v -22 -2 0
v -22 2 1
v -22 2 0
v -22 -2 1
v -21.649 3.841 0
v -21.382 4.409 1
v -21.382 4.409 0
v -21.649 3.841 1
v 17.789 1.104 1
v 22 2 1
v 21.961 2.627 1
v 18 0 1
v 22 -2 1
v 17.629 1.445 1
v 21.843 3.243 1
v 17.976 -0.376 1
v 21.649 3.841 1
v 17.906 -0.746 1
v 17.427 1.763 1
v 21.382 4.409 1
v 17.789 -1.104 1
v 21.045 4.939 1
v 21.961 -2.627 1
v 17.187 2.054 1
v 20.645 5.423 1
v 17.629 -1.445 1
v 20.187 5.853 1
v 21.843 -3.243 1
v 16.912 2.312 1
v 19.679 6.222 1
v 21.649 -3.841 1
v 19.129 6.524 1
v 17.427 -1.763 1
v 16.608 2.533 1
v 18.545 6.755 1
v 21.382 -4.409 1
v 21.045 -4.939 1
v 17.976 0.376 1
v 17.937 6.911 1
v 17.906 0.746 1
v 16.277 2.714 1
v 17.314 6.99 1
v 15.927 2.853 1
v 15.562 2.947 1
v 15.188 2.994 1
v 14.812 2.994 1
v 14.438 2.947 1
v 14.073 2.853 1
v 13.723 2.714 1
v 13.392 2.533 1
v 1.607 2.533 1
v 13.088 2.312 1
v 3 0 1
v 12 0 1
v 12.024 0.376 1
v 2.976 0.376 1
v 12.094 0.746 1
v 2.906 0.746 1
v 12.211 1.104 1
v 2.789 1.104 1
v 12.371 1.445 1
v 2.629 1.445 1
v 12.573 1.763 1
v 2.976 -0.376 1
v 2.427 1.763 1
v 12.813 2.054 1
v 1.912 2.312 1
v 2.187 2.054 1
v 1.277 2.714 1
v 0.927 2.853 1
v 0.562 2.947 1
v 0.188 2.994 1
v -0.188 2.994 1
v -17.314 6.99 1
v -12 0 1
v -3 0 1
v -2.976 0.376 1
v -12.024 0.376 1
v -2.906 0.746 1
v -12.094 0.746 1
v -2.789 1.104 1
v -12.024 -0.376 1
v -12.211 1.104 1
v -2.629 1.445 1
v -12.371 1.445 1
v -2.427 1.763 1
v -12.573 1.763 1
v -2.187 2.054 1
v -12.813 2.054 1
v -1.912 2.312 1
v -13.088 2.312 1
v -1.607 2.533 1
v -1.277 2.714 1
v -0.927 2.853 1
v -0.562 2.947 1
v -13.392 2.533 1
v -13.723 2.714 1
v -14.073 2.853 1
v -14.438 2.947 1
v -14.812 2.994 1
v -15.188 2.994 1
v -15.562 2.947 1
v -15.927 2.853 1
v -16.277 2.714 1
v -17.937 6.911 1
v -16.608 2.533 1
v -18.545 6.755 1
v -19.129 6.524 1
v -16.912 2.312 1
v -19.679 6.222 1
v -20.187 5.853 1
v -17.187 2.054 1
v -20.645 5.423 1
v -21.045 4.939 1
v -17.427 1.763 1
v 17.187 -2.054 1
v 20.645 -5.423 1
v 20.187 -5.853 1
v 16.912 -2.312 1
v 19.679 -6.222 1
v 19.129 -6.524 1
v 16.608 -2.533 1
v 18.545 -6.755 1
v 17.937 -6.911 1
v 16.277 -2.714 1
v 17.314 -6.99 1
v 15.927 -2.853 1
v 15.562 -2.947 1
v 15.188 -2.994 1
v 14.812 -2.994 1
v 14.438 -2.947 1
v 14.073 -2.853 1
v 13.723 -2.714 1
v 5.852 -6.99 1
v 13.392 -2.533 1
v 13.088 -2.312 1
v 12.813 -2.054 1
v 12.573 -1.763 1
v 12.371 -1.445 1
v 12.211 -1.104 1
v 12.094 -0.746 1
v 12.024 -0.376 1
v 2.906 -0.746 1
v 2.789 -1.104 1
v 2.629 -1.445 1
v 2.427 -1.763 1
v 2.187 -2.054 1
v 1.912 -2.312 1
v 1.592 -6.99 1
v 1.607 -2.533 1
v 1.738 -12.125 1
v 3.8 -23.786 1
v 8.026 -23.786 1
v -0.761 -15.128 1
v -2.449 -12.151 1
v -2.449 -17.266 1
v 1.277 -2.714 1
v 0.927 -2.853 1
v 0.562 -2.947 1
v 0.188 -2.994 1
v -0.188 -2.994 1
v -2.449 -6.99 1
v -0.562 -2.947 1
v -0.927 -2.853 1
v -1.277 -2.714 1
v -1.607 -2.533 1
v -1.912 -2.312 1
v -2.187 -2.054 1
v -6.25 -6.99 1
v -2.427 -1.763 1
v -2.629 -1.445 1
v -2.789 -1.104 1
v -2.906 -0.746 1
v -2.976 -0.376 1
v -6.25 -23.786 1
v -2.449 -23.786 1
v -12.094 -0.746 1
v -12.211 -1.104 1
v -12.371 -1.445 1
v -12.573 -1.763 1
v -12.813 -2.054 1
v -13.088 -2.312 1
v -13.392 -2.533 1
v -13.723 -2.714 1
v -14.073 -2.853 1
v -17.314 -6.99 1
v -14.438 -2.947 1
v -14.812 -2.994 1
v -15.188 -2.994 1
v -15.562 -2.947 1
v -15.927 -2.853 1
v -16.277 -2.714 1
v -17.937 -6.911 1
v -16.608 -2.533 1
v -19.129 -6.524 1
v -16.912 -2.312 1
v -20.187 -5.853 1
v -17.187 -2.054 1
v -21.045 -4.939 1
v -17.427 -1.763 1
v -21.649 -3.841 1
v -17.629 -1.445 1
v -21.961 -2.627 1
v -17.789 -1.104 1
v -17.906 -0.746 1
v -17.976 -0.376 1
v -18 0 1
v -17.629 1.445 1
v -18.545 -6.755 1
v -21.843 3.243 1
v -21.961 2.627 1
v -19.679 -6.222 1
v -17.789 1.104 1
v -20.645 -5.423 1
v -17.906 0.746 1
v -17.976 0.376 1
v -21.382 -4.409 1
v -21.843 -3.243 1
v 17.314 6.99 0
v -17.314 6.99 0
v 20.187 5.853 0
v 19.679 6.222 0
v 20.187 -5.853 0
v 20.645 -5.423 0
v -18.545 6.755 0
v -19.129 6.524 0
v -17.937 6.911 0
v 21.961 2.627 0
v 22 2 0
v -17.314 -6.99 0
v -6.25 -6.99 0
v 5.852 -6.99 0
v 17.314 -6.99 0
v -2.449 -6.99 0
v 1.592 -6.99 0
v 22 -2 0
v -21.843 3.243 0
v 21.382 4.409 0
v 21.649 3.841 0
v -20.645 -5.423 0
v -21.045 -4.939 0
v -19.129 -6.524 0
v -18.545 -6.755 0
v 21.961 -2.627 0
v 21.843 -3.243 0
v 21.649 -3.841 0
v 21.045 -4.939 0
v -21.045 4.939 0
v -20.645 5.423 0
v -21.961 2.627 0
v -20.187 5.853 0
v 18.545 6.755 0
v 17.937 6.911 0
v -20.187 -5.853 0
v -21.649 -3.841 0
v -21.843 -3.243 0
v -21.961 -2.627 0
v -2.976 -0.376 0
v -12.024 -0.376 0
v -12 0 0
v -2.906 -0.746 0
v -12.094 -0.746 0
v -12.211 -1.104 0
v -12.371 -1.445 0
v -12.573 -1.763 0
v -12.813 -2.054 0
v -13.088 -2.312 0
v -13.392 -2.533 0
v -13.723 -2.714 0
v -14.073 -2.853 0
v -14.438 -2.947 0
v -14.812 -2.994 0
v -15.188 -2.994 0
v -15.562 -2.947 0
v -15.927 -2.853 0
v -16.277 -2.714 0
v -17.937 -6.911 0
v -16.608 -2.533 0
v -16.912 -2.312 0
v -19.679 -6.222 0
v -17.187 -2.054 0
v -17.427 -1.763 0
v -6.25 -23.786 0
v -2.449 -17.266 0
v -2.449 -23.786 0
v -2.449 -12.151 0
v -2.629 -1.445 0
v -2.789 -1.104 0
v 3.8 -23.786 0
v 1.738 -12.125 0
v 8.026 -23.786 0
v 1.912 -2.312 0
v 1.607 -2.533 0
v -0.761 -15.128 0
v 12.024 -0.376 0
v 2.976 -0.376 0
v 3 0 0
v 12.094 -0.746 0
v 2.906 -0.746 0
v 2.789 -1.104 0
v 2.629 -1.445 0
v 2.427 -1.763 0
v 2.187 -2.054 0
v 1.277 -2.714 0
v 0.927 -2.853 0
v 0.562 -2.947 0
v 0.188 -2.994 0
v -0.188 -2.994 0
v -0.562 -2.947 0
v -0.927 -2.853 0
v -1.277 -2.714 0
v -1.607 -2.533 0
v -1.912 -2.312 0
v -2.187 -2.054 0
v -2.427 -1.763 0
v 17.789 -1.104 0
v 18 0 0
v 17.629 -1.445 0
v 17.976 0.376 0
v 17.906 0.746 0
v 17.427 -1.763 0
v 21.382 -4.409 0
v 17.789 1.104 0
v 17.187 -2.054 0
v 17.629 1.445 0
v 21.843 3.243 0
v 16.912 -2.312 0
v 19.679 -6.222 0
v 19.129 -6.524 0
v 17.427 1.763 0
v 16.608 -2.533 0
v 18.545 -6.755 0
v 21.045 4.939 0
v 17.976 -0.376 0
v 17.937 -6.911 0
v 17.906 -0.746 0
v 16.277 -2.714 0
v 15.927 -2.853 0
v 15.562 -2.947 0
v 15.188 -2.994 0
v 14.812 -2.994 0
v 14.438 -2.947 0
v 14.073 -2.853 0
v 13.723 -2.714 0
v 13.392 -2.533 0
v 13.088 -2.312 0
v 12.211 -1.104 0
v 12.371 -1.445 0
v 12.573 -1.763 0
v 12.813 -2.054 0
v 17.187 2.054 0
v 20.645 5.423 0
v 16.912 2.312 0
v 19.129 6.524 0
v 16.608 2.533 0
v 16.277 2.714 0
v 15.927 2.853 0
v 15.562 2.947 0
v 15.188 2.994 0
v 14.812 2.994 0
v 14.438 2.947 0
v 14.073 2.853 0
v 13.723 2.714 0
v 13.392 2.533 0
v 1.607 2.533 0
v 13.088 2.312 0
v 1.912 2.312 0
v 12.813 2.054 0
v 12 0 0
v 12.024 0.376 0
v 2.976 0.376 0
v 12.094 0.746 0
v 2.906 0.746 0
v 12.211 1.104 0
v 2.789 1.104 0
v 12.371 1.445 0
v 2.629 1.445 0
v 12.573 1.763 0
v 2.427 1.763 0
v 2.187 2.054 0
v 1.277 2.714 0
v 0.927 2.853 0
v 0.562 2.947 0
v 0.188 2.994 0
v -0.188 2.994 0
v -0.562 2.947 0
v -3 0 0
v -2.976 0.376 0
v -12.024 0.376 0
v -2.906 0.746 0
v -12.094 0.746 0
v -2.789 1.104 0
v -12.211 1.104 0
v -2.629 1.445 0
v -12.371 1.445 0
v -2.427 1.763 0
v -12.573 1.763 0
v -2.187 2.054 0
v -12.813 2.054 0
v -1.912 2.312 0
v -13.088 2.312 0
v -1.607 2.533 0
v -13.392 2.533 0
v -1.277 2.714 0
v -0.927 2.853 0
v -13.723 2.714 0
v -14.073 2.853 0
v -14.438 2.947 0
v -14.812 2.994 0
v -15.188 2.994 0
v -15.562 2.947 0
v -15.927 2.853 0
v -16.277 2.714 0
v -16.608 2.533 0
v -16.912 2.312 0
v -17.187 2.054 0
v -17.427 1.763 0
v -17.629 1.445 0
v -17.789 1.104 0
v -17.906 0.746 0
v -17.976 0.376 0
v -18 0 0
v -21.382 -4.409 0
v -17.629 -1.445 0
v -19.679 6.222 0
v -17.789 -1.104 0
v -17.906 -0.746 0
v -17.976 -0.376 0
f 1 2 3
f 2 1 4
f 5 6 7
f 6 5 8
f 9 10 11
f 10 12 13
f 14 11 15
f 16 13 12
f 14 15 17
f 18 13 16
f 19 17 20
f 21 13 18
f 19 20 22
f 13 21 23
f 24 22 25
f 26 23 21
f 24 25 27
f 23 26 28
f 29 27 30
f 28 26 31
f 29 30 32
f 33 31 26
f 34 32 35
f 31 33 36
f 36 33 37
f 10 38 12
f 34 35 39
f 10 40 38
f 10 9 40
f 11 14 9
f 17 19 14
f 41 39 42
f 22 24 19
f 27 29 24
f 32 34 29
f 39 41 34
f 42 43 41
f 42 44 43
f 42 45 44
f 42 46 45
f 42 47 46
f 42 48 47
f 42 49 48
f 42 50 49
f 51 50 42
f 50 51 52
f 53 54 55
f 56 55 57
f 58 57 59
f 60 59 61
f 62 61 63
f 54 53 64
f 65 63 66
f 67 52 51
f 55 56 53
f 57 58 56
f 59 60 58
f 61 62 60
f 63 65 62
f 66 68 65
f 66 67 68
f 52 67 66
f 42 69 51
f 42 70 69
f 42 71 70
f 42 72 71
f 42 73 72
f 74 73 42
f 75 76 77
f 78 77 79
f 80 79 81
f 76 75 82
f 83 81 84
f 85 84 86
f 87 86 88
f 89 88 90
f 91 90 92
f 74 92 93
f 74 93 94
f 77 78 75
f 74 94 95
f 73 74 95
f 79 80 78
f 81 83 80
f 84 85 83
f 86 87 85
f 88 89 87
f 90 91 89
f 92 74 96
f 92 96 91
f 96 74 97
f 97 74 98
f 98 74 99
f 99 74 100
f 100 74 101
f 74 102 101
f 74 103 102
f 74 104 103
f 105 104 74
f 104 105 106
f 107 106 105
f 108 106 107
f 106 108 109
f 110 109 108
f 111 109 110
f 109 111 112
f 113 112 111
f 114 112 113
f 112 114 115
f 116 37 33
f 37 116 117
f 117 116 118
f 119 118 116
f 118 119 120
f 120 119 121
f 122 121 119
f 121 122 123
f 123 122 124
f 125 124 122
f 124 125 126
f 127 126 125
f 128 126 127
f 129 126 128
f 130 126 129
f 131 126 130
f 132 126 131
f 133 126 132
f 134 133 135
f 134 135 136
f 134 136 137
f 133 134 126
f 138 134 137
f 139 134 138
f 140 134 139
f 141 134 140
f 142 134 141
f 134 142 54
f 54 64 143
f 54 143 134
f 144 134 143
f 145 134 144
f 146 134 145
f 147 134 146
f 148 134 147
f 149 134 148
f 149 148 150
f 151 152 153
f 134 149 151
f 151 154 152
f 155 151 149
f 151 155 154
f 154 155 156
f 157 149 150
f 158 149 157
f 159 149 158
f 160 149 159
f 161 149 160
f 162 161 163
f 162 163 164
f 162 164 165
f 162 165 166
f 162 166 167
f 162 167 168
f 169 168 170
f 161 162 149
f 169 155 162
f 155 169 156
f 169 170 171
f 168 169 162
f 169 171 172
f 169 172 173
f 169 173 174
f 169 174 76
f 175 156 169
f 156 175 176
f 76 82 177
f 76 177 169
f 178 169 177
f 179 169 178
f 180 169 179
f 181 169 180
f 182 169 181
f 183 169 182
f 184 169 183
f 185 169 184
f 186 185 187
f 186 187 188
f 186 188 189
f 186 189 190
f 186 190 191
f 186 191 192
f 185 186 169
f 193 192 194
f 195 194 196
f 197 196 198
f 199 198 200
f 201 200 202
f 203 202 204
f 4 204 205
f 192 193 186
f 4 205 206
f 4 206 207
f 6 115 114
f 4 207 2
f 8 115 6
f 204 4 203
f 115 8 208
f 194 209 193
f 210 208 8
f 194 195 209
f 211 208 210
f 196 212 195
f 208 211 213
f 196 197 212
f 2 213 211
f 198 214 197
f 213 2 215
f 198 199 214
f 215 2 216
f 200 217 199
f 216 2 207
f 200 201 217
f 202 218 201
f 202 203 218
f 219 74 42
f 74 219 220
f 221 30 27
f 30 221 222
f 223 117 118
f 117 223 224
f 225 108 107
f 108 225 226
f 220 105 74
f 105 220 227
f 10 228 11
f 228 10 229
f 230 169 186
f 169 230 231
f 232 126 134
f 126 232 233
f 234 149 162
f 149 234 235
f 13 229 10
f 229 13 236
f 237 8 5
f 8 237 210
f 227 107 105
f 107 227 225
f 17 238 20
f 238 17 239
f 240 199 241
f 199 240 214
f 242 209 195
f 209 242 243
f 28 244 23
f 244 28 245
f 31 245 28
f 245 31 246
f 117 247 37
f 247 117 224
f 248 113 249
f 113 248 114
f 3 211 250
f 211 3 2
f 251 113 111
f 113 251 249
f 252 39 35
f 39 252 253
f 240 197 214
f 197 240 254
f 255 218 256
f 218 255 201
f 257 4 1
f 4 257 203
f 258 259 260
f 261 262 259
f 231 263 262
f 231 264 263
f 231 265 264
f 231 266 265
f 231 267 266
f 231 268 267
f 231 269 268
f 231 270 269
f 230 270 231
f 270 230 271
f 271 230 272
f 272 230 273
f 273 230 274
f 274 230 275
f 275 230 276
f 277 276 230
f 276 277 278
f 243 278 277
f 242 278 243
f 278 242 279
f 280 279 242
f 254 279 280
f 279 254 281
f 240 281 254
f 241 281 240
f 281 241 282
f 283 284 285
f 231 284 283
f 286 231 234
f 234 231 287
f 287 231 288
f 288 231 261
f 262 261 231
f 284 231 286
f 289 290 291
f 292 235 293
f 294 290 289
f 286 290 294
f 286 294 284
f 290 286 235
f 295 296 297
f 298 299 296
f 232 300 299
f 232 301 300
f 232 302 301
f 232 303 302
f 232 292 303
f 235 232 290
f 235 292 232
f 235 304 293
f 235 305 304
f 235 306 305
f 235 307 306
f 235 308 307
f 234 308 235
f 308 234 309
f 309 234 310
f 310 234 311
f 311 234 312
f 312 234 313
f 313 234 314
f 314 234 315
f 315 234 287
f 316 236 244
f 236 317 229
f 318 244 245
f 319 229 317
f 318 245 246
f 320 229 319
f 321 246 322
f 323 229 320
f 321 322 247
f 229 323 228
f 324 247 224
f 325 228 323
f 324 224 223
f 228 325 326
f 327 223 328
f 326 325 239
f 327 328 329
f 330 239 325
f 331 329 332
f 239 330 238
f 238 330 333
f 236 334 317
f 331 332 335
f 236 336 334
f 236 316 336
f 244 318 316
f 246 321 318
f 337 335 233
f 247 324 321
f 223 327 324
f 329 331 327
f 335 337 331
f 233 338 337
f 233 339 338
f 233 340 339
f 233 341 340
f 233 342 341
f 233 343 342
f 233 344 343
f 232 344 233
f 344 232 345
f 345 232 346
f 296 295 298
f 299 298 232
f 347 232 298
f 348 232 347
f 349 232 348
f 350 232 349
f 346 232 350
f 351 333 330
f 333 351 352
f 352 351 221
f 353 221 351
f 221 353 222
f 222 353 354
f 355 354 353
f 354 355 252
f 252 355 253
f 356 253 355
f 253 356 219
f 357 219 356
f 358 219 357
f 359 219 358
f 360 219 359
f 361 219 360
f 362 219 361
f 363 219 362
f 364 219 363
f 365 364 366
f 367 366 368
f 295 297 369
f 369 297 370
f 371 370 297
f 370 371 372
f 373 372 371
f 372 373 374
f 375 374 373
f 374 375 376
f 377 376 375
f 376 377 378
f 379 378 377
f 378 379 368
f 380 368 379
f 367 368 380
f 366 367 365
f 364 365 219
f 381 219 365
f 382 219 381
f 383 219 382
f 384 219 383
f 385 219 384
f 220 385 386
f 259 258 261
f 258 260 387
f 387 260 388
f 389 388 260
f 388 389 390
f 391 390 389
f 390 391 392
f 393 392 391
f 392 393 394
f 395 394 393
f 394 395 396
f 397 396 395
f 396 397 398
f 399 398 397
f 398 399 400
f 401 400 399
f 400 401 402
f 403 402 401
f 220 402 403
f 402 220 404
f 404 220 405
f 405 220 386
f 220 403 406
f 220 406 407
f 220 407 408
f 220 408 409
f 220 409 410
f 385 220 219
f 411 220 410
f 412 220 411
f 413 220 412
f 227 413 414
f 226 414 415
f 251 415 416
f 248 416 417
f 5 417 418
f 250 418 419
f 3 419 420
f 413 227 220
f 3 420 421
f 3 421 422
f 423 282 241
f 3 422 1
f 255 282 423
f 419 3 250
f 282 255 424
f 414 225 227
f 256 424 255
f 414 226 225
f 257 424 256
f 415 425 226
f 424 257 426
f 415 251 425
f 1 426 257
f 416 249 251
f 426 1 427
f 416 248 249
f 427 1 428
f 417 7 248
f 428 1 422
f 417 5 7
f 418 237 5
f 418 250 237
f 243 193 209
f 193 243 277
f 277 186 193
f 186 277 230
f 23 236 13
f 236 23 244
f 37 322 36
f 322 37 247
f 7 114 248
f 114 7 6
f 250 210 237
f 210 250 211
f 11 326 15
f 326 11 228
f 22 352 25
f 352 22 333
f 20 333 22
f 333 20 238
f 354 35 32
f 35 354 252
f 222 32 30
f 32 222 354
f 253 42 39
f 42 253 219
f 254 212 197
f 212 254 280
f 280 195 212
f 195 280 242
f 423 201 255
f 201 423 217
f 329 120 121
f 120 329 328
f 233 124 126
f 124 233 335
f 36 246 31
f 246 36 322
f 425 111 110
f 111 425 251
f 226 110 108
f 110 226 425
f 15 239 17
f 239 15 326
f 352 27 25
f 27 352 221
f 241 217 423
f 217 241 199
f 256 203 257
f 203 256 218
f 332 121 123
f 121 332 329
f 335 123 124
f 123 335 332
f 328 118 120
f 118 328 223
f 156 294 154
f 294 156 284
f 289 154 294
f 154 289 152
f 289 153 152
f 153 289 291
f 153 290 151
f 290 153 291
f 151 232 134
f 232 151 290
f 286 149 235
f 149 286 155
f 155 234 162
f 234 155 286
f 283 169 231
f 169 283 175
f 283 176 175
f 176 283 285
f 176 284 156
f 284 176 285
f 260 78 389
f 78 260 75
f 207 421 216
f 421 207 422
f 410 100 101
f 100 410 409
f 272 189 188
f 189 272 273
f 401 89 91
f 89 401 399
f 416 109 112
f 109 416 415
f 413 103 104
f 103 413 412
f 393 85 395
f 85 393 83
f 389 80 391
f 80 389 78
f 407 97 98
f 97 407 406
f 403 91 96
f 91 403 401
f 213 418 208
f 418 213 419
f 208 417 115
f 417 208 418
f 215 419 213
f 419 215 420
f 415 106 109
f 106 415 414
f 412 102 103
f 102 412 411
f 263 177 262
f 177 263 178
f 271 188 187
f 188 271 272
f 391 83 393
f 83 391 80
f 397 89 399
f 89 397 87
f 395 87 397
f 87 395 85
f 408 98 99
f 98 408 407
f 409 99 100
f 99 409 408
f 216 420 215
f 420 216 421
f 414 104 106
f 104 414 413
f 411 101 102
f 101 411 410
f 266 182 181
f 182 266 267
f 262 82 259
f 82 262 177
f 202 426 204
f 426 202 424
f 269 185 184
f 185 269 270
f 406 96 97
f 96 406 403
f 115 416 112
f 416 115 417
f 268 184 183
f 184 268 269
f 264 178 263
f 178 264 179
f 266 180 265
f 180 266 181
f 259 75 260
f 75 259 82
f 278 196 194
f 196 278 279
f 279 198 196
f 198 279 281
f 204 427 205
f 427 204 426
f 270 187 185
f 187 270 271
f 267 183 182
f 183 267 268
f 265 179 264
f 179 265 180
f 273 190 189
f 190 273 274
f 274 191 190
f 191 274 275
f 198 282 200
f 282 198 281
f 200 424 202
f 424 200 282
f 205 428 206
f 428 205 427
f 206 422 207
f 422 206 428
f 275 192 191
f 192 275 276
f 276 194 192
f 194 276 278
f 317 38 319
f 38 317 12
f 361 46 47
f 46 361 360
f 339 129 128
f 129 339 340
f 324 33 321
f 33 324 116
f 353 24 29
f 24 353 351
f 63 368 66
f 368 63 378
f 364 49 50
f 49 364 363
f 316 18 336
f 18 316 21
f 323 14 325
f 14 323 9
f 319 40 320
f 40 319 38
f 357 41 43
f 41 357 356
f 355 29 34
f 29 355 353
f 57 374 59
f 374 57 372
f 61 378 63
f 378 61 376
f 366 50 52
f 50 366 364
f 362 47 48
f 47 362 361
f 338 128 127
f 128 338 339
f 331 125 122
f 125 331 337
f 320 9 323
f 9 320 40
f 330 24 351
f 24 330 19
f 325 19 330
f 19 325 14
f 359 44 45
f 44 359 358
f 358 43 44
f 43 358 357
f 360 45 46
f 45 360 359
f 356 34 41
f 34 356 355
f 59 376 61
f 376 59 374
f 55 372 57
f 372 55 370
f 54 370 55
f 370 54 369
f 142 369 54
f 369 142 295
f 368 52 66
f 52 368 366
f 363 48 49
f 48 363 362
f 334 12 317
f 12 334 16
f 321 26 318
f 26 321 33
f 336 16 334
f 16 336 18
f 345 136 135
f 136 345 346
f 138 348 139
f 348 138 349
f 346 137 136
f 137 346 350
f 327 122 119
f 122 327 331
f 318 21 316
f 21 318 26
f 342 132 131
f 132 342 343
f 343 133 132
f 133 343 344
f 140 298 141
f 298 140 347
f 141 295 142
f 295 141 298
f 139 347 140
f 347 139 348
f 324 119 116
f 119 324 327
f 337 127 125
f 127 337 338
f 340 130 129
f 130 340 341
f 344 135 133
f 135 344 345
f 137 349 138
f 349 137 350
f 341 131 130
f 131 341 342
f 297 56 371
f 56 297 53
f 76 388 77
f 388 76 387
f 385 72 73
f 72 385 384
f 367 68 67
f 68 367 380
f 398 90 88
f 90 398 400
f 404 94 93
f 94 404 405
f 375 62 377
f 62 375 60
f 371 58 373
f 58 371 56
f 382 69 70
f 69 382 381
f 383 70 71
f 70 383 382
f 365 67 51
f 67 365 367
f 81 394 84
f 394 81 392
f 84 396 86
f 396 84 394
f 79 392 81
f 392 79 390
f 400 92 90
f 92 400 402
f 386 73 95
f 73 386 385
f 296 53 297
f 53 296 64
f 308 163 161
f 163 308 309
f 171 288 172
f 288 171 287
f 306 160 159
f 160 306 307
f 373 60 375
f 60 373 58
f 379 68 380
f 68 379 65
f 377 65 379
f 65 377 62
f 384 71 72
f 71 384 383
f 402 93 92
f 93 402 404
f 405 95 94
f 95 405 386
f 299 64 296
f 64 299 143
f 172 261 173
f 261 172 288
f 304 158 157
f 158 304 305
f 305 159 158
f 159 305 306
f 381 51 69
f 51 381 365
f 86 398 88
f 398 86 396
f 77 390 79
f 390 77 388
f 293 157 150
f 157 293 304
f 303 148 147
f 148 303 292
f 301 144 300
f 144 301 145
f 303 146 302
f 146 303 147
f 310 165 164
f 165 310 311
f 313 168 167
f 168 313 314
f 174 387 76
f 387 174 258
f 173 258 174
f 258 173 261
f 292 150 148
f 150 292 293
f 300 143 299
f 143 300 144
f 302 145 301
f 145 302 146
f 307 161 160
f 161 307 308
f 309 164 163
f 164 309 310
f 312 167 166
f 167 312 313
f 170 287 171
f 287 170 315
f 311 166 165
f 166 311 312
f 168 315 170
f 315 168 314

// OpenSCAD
$fn = 50;


difference() {
	union() {
		translate(v = [0, 0, 0]) {
			rotate(a = [0, 0, 0]) {
				hull() {
					translate(v = [-17.0000000000, 2.0000000000, 0]) {
						rotate(a = [0, 0, 0]) {
							translate(v = [0, 0, 0]) {
								rotate(a = [0, 0, 0]) {
									cylinder(h = 1, r = 5);
								}
							}
						}
					}
					translate(v = [17.0000000000, 2.0000000000, 0]) {
						rotate(a = [0, 0, 0]) {
							translate(v = [0, 0, 0]) {
								rotate(a = [0, 0, 0]) {
									cylinder(h = 1, r = 5);
								}
							}
						}
					}
					translate(v = [-17.0000000000, -2.0000000000, 0]) {
						rotate(a = [0, 0, 0]) {
							translate(v = [0, 0, 0]) {
								rotate(a = [0, 0, 0]) {
									cylinder(h = 1, r = 5);
								}
							}
						}
					}
					translate(v = [17.0000000000, -2.0000000000, 0]) {
						rotate(a = [0, 0, 0]) {
							translate(v = [0, 0, 0]) {
								rotate(a = [0, 0, 0]) {
									cylinder(h = 1, r = 5);
								}
							}
						}
					}
				}
			}
		}
		translate(v = [0, -5, 0]) {
			rotate(a = [0, 0, 0]) {
				linear_extrude(height = 1) {
					text(font = "DejaVu Sans Mono:style=Bold", halign = "center", size = 19.0000000000, text = "K", valign = "top");
				}
			}
		}
	}
	union() {
		translate(v = [-15.0000000000, 0.0000000000, -125.0000000000]) {
			rotate(a = [0, 0, 0]) {
				cylinder(h = 250, r = 3.0000000000);
			}
		}
		translate(v = [15.0000000000, 0.0000000000, -125.0000000000]) {
			rotate(a = [0, 0, 0]) {
				cylinder(h = 250, r = 3.0000000000);
			}
		}
		translate(v = [15.0000000000, 0.0000000000, -125.0000000000]) {
			rotate(a = [0, 0, 0]) {
				cylinder(h = 250, r = 3.0000000000);
			}
		}
		translate(v = [0, 0, -125.0000000000]) {
			rotate(a = [0, 0, 0]) {
				cylinder(h = 250, r = 3.0000000000);
			}
		}
	}
}
